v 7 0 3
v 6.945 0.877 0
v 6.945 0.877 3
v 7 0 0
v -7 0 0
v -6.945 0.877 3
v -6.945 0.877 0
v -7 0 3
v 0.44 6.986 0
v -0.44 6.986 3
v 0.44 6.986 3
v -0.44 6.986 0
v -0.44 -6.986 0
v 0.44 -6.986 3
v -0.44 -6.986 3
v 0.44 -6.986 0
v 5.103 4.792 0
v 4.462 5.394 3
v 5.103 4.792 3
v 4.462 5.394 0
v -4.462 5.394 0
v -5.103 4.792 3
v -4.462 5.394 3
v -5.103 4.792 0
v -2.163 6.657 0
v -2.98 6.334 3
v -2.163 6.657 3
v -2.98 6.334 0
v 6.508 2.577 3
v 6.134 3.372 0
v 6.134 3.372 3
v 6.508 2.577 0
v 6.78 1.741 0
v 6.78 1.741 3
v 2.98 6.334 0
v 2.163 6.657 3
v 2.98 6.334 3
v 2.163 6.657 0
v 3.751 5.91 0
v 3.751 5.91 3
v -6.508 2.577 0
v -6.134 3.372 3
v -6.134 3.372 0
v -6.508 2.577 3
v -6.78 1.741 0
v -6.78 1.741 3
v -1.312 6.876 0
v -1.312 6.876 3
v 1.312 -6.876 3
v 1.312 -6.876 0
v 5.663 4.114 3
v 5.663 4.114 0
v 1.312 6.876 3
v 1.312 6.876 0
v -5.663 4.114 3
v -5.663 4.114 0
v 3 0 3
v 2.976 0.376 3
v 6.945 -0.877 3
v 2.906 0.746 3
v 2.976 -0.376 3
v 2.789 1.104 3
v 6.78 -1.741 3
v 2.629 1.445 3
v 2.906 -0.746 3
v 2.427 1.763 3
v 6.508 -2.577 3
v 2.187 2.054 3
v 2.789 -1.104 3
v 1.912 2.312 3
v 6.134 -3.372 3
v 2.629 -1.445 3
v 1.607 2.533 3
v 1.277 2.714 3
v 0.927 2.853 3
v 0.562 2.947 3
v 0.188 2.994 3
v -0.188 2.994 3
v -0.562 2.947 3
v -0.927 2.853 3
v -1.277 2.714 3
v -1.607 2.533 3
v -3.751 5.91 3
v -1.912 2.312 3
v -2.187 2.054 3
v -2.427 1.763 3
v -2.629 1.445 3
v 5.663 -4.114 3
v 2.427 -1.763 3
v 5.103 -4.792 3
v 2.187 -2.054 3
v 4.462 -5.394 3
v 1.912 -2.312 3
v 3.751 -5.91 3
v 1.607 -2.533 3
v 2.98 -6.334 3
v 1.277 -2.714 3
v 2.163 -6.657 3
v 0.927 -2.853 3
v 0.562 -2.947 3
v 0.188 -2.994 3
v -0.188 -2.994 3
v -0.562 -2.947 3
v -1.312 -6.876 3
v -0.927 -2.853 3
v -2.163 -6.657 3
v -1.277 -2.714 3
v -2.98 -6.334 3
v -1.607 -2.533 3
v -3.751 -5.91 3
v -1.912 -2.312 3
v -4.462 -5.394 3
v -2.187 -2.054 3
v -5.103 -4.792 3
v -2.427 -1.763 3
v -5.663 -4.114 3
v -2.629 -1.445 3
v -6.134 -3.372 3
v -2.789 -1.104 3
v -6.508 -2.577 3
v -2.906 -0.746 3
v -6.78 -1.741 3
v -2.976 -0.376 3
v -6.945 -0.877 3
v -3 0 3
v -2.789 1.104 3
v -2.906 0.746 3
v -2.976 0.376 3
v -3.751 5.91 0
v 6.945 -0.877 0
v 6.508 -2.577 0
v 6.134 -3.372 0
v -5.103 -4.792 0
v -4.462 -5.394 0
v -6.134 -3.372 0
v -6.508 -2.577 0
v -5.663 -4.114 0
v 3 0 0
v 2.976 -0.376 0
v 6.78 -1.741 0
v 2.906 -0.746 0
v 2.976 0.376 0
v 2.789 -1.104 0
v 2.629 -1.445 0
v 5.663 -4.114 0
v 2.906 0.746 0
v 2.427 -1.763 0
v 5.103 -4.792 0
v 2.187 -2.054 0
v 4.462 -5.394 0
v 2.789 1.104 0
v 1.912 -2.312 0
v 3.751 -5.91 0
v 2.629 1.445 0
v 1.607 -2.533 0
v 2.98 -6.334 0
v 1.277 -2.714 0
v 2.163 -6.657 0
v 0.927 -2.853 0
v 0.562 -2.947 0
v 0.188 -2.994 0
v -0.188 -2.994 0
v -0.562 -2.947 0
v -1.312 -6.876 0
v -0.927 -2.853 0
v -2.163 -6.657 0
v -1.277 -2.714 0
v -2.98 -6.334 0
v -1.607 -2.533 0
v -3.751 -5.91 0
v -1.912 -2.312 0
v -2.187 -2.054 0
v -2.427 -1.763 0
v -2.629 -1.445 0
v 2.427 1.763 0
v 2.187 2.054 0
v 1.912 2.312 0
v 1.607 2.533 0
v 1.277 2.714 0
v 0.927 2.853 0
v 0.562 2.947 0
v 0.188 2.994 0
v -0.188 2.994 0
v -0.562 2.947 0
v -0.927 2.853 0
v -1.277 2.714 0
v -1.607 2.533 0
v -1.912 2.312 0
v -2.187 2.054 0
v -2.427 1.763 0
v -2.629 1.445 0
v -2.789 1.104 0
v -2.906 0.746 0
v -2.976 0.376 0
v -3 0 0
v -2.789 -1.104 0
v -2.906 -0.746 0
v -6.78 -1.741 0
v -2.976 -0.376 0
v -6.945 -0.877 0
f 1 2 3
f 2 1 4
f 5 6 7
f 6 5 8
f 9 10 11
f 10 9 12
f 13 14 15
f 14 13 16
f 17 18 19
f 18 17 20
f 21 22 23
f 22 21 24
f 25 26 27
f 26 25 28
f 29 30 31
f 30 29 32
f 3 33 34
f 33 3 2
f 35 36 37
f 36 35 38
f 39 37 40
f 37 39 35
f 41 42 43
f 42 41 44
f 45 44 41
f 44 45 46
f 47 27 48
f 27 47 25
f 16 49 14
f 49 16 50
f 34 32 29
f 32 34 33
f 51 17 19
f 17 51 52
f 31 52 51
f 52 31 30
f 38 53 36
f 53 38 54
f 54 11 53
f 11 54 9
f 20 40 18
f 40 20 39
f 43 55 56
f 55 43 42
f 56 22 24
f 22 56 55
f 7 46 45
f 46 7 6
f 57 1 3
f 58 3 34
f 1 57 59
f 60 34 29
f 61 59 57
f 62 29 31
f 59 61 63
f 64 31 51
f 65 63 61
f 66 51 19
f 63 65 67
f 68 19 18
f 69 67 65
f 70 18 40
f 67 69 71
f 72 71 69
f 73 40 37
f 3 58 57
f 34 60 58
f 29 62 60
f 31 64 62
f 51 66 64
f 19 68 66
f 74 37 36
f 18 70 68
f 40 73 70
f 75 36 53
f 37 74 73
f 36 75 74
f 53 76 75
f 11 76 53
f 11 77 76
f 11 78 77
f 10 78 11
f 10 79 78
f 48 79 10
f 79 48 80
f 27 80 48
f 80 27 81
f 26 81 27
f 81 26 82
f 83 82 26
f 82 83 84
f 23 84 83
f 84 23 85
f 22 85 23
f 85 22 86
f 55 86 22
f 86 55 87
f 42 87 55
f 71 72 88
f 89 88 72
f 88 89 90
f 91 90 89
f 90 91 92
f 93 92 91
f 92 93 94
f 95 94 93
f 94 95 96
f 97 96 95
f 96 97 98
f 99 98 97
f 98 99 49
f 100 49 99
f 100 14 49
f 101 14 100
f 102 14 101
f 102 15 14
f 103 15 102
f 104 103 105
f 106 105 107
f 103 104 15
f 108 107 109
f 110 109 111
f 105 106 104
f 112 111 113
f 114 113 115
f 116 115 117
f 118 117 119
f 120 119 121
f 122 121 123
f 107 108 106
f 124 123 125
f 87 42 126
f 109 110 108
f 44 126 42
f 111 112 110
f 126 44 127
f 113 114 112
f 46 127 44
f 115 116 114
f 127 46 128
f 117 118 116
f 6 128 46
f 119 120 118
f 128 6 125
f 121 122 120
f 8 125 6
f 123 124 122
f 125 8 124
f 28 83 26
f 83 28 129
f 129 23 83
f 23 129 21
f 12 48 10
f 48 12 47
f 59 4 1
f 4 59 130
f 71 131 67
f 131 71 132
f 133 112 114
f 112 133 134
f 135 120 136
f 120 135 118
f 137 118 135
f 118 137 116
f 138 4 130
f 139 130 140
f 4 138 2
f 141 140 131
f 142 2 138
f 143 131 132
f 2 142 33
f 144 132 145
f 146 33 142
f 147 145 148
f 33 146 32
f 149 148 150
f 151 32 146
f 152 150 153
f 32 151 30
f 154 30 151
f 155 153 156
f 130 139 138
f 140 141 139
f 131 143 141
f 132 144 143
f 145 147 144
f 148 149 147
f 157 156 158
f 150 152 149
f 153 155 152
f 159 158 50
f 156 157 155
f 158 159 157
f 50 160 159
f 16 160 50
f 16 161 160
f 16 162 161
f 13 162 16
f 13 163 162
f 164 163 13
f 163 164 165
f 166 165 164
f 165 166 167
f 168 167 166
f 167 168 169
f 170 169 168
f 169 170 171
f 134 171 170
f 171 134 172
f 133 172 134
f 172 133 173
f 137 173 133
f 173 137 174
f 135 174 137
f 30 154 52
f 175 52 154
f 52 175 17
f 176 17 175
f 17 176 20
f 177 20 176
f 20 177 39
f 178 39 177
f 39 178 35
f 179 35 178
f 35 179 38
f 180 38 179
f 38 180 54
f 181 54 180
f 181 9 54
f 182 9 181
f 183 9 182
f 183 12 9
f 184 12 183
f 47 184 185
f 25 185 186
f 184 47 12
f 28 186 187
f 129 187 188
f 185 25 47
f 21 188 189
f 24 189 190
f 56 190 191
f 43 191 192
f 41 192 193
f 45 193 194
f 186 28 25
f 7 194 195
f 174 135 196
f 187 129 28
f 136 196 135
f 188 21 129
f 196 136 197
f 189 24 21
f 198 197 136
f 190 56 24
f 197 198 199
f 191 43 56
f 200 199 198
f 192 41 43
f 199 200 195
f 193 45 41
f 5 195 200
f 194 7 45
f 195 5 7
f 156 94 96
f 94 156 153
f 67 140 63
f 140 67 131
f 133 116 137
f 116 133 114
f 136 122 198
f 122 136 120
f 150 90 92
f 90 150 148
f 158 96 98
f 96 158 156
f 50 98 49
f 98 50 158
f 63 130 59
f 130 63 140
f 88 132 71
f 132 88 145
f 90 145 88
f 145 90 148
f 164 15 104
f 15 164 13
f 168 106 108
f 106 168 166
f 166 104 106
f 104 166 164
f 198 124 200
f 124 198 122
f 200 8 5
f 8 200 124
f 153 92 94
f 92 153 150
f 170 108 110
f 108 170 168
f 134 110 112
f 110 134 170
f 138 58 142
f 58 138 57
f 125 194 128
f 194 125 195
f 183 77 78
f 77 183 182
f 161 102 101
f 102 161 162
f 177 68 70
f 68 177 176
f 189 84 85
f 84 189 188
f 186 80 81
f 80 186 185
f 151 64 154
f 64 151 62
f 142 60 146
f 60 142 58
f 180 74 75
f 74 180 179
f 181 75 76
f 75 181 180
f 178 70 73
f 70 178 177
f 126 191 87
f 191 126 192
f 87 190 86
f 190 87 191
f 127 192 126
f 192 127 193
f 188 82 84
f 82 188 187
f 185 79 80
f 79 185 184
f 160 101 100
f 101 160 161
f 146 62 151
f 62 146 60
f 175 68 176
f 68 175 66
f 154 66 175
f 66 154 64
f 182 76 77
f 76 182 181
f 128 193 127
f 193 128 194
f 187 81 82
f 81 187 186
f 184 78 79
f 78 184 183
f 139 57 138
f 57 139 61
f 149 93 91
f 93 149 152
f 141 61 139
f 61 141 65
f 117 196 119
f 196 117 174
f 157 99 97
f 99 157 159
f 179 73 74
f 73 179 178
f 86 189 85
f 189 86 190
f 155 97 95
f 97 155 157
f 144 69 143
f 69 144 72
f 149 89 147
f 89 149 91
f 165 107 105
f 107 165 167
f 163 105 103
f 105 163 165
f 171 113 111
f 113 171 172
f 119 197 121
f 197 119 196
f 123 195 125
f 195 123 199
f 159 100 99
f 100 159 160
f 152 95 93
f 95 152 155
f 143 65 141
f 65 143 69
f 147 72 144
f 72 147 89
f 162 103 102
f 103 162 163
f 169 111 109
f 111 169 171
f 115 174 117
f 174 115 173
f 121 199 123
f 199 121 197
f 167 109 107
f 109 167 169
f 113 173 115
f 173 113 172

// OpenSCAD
// Generated by SolidPython 1.1.3 on 2023-03-02 20:12:58
$fn = 50;


difference() {
	union() {
		translate(v = [0, 0, 0]) {
			rotate(a = [0, 0, 0]) {
				cylinder(h = 3, r = 7.0000000000);
			}
		}
	}
	union() {
		translate(v = [0.0000000000, 0.0000000000, 0]) {
			rotate(a = [0, 0, 0]) {
				translate(v = [0, 0, -50]) {
					rotate(a = [0, 0, 0]) {
						cylinder(h = 100, r = 3.0000000000);
					}
				}
			}
		}
	}
}
/***********************************************
*********      SolidPython code:      **********
************************************************
 
from solid import *
import os
import subprocess

import oomB

import opsc_library_gen

mode = "laser"
#mode = "3d_print"

defined_objects = {}

radius_dict = {}
countersunk_dict = {}


def set_mode(m):
    global mode
    mode = m
    radius_dict['M6'] = 6.5/2
    radius_dict['M3'] = 3.3/2
    if mode == "laser":
        radius_dict['M6'] = 6/2
        radius_dict['M3'] = 3/2

    countersunk_dict['M3'] = {}
    countersunk_dict['M3']['little_rad'] = radius_dict['M3']
    countersunk_dict['M3']['big_rad'] = (5.5+0.6)/2
    if mode == "laser":
        countersunk_dict['M3']['big_rad'] = (4.75+0.6)/2
        countersunk_dict['M3']['little_rad'] = (4.75+0.6)/2

    countersunk_dict['M3']['height'] = 1.7


def opsc_make_object(filename, objects, save_type="none",resolution=50, layers = 1, tilediff = 200, mode="laser", overwrite=True):
    if overwrite or not os.path.exists(filename):
        set_mode(mode)
        save_type = save_type.lower()
        os.makedirs(os.path.dirname(filename), exist_ok=True)
        final_object = opsc_get_object(objects)
        # Save the final object to the specified filename    
        scad_render_to_file(final_object, filename, file_header='$fn = %s;' % resolution, include_orig_code=True)
        if mode == "laser":
            filename_laser = filename.replace(".scad","-flat.scad")
            scad_render_to_file(getLaser(final_object, layers=layers, tilediff=tilediff), filename_laser, file_header='$fn = %s;' % resolution, include_orig_code=True)
            if save_type == "all":
                saveToAll(filename_laser)
            elif save_type == "dxf":
                saveToDxf(filename_laser)
        if save_type == "all":
            saveToAll(filename)
        elif save_type == "dxf":
            saveToDxf(filename)


def opsc_get_object(objects):
    # Create the solidpython objects
    positive_objects = [get_opsc_item(obj) for obj in objects if obj['type'] == 'positive']
    negative_objects = [get_opsc_item(obj) for obj in objects if obj['type'] == 'negative']
    # Union the positive objects
    positive_object = union()(*positive_objects)
    # Union the negative objects
    negative_object = union()(*negative_objects)
    # Create the final object by subtracting the negative objects from the positive objects
    return difference()(positive_object, negative_object)

def get_opsc_item(params):
    # A dictionary to map radius string values to numerical values
    #radius_dict = {'small': 5, 'medium': 10, 'large': 15}
    # An array of function names for basic shapes
    basic_shapes = ['cube', 'sphere', 'cylinder']
    
    # An array of function names for other shapes
    other_shapes = ['hole', 'slot', 'rounded_rectangle', 'countersunk']
    


    # Convert radius to r if present, and remove radius from the params dictionary
    if 'radius' in params:
        if isinstance(params['radius'], str):
            # Use the radius_dict to map the radius string value to a numerical value
            params['r'] = radius_dict[params['radius']]
        else:
            params['r'] = params['radius']
        del params['radius']
    

    # Check if the object type is a basic shape
    if params['shape'] in basic_shapes:
        # Remove shape and unexpected dictionary values
        allowed_keys = {'size', 'r', 'r1', 'r2', 'd', 'h', 'rw', 'rh', 'dw', 'dh'}
        shape_params = {k: v for k, v in params.items() if k in allowed_keys}

        # Call the corresponding function for the shape parameter, using ** notation to pass the shape_params dictionary as keyword arguments
        return get_opsc_transform(params,globals()[params['shape']](**shape_params))
    
    # If the object type is not a basic shape, check if it's a defined object or one of the other shapes
    elif params['shape'] in other_shapes:
        # Call the corresponding function for the shape parameter, passing the params dictionary as an argument
        p2 = copy.deepcopy(params)
        p2["pos"] = [0,0,0]
        return get_opsc_transform(params,globals()[params['shape']](p2))
    
    # If the object is not a basic shape or a defined object, try to import it from a .scad file
    else:
        obj = defined_objects[params['shape']]
        return get_opsc_transform(params,obj)

def get_opsc_transform(params, solid_obj):
    # Rotate the object based on the 'rot' field in the params dictionary, or the 'rotX', 'rotY', and 'rotZ' fields if 'rot' is not present
    rot = params.get('rot', [])
    if rot:
        rotX, rotY, rotZ = rot
    else:
        rotX = params.get('rotX', 0)
        rotY = params.get('rotY', 0)
        rotZ = params.get('rotZ', 0)
    solid_obj = rotate([rotX, rotY, rotZ])(solid_obj)

    # Translate the object based on the 'pos' field in the params dictionary, or the 'x', 'y', and 'z' fields if 'pos' is not present
    pos = params.get('pos', [])
    if pos:
        x, y, z = pos
    else:
        x = params.get('x', 0)
        y = params.get('y', 0)
        z = params.get('z', 0)
    solid_obj = translate([x, y, z])(solid_obj)
    return solid_obj


import random

def opsc_easy_array(type, shape, repeats, pos_start, shift_arr, **kwargs):
    for i in range(0,3):
        repeats.append(1)
        pos_start.append(0)
        shift_arr.append(0)
    return_objects = []

    for x in range(0,repeats[0]):
        for y in range(0,repeats[1]):
            for z in range(0,repeats[2]):
                return_objects.append(opsc_easy(type, shape, pos=[pos_start[0]+x*shift_arr[0],pos_start[1]+y*shift_arr[1],pos_start[2]+z*shift_arr[2]], **kwargs))
    return return_objects                



def opsc_easy(type, shape, **kwargs):
    obj = {
        'type': type,
        'shape': shape
    }
    for param in ['size', 'r', 'r1', 'r2', 'd', 'h', 'rw', 'rh', 'dw', 'dh', 'pos', 'x', 'y', 'z', 'rot', 'rotX', 'rotY', 'rotZ', "w"]:
        if param in kwargs:
            obj[param] = kwargs[param]
    return obj

def hole(params):
    p2 = copy.deepcopy(params)  
    # Check if the radius is a string and replace it with the corresponding value from the dictionary
    if isinstance(p2['r'], str):
        p2['r'] = radius_dict[p2['r']]
    
    # Set the height to 100 if not specified
    if 'h' not in p2:
        p2['h'] = 100
        p2["pos"] = [0,0,-50]
    p2["center"] = True
    # Create the cylinder object
    p2["shape"] = "cylinder"
    p2["type"] = "positive"

    return get_opsc_item(p2)

import copy

def countersunk(params):
    p2 = copy.deepcopy(params)
    counter_rad = p2['r']
    p2['r'] = radius_dict[p2['r']]
    hp = copy.deepcopy(p2)
    hp["type"] = "positive"
    hp["shape"] = "hole"
    del hp["rot"]
    hol = get_opsc_item(hp)
    
    cp = copy.deepcopy(p2)
    cp["h"] = countersunk_dict[counter_rad]["height"]
    cp["r2"] = countersunk_dict[counter_rad]["little_rad"]
    cp["r1"] = countersunk_dict[counter_rad]["big_rad"]
    del cp["r"]
    del cp["rot"]
    cp["type"] = "positive"
    cp["shape"] = "cylinder"
    cp["pos"] = [0,0,0]

    top = get_opsc_item(cp)
    return union()(hol,top)



def slot(params):  
    p2 = copy.deepcopy(params) 
    if isinstance(p2['r'], str):
        p2['r'] = radius_dict[p2['r']]
    p2["type"] = "positive"
    p2["shape"] = "hole"
    del p2["rot"]
    p2["pos"] = [0,0,0]
    left = copy.deepcopy(p2)
    right = copy.deepcopy(p2)
    left["pos"][0] = p2["w"] / 2 - p2["r"] 
    
    right["pos"][0] = -p2["w"] / 2 + p2["r"] 
    pass
    leftObj = get_opsc_item(left)
    rightObj = get_opsc_item(right)
    return hull()(leftObj, rightObj)

def rounded_rectangle(params):   
    p2 = copy.deepcopy(params) 
    p2["h"] = p2["size"][2]
    p2["pos"] = p2.get("pos", [0, 0, 0]) 
    p2["type"] = "positive"
    p2["shape"] = "hole"
    p2["pos"] = [0,0,0]
    
    if 'rot' in p2:
        del p2["rot"]   
    if 'r' not in p2:
        p2["r"] = 5 
    tl = copy.deepcopy(p2)
    tr = copy.deepcopy(p2)
    bl = copy.deepcopy(p2)
    br = copy.deepcopy(p2)
    tl["pos"][0] = -(p2["size"][0] - p2["r"]*2)/2
    tl["pos"][1] = (p2["size"][1] - p2["r"]*2)/2
    tr["pos"][0] = (p2["size"][0] - p2["r"]*2)/2
    tr["pos"][1] = (p2["size"][1] - p2["r"]*2)/2
    bl["pos"][0] = -(p2["size"][0] - p2["r"]*2)/2
    bl["pos"][1] = -(p2["size"][1] - p2["r"]*2)/2
    br["pos"][0] = (p2["size"][0] - p2["r"]*2)/2
    br["pos"][1] = -(p2["size"][1] - p2["r"]*2)/2
    del tl["size"]
    del tr["size"]
    del bl["size"]
    del br["size"]
    tlo = get_opsc_item(tl)
    tro = get_opsc_item(tr)
    blo = get_opsc_item(bl)
    bro = get_opsc_item(br)    
    return hull()(tlo, tro, blo, bro)



def import_scad_object(filename):
    # Import the .scad file and convert it to a solidpython object
    #filename = "parts"
    obj = import_scad(filename)
    return obj.main()
    


import os
import solid as solidpython

# A dictionary to store the defined objects


def load_scad_objects():
    opsc_library_gen.gen_library(defined_objects)

import random

def test(num_objects):
    objects = []
    for i in range(num_objects):
        # Choose a random shape
        #shape = random.choice(['cube', 'sphere', 'cylinder', 'hole', 'slot', "rounded_rectangle"])
        shape = random.choice(["rounded_rectangle"])

        # Choose a random type
        type = random.choice(['positive', 'negative'])
        
        # Create an empty object dictionary
        obj = {'shape': shape, 'type': type}
        
        # Set shape-specific parameters
        if obj['shape'] in ['cube']:
            obj['size'] =  [random.uniform(5, 15), random.uniform(5, 15), random.uniform(5, 15)]
        if obj['shape'] in ['rounded_rectangle']:
            obj['size'] =  [random.uniform(5, 15), random.uniform(5, 15), random.uniform(5, 15)]
            obj['r'] = random.uniform(0.5, 5)
        elif obj['shape'] == 'sphere':
            obj['r'] = random.uniform(5, 15)
        elif obj['shape'] in ['cylinder', 'hole']:
            obj['r'] = random.uniform(0.5, 5)
            obj['h'] = random.uniform(5, 15)
        elif obj['shape'] == 'slot':
            obj['r'] = random.uniform(0.5, 5)
            obj['h'] = random.uniform(5, 15)
            obj['w'] = random.uniform(5, 15)
        
        # Set a random position and rotation
        obj['pos'] = [random.uniform(-20, 20), random.uniform(-20, 20), random.uniform(-20, 20)]
        obj['rot'] = [random.uniform(-180, 180), random.uniform(-180, 180), random.uniform(-180, 180)]
        
        # Add the object to the list
        objects.append(obj)
    return objects

####### old file saving
def saveToAll(fileIn):
    saveToDxf(fileIn)
    saveToPng(fileIn)
    saveToStl(fileIn)
    saveToSvg(fileIn)

def saveToDxf(fileIn, fileOut="", copy_to_laser=True):
    if fileOut == "":
        fileOut = fileIn.replace(".scad",".dxf")
    saveToFile(fileIn, fileOut)


    
def saveToPng(fileIn, fileOut="",extra="--render"):
    if fileOut == "":
        fileOut = fileIn.replace(".scad",".png")
    saveToFile(fileIn, fileOut)

def saveToStl(fileIn, fileOut=""):
    if fileOut == "":
        fileOut = fileIn.replace(".scad",".stl")
    saveToFile(fileIn, fileOut)
    
def saveToSvg(fileIn, fileOut=""):
    if fileOut == "":
        fileOut = fileIn.replace(".scad",".svg")
    saveToFile(fileIn, fileOut)

def saveToFile(fileIn, fileOut,extra=""):
    #extra = extra + " --colorscheme Tomorrow"

    launchStr = 'openscad -o "' + fileOut + '"' + extra + ' "' + fileIn + '"'
    if ".png" in fileOut:
        launchStr = launchStr + " --render"
    print("            saveToFile launch string: " + launchStr)
    subprocess.run(launchStr)
    x=0

def getLaser(final_object,start=1.5,layers=1,thickness=3,tilediff=200):
        rv= []

        for x in range(layers):
            rv.append(translate([0,x*tilediff,0])(
                    projection()(
                        intersection()(translate([-500,-500,start+x*thickness])(cube(size=[1000,1000,0.1])),
                            final_object
                        )
                    )
            )
            )
            
        return union()(rv)

set_mode("laser")
load_scad_objects() 
 
************************************************/
